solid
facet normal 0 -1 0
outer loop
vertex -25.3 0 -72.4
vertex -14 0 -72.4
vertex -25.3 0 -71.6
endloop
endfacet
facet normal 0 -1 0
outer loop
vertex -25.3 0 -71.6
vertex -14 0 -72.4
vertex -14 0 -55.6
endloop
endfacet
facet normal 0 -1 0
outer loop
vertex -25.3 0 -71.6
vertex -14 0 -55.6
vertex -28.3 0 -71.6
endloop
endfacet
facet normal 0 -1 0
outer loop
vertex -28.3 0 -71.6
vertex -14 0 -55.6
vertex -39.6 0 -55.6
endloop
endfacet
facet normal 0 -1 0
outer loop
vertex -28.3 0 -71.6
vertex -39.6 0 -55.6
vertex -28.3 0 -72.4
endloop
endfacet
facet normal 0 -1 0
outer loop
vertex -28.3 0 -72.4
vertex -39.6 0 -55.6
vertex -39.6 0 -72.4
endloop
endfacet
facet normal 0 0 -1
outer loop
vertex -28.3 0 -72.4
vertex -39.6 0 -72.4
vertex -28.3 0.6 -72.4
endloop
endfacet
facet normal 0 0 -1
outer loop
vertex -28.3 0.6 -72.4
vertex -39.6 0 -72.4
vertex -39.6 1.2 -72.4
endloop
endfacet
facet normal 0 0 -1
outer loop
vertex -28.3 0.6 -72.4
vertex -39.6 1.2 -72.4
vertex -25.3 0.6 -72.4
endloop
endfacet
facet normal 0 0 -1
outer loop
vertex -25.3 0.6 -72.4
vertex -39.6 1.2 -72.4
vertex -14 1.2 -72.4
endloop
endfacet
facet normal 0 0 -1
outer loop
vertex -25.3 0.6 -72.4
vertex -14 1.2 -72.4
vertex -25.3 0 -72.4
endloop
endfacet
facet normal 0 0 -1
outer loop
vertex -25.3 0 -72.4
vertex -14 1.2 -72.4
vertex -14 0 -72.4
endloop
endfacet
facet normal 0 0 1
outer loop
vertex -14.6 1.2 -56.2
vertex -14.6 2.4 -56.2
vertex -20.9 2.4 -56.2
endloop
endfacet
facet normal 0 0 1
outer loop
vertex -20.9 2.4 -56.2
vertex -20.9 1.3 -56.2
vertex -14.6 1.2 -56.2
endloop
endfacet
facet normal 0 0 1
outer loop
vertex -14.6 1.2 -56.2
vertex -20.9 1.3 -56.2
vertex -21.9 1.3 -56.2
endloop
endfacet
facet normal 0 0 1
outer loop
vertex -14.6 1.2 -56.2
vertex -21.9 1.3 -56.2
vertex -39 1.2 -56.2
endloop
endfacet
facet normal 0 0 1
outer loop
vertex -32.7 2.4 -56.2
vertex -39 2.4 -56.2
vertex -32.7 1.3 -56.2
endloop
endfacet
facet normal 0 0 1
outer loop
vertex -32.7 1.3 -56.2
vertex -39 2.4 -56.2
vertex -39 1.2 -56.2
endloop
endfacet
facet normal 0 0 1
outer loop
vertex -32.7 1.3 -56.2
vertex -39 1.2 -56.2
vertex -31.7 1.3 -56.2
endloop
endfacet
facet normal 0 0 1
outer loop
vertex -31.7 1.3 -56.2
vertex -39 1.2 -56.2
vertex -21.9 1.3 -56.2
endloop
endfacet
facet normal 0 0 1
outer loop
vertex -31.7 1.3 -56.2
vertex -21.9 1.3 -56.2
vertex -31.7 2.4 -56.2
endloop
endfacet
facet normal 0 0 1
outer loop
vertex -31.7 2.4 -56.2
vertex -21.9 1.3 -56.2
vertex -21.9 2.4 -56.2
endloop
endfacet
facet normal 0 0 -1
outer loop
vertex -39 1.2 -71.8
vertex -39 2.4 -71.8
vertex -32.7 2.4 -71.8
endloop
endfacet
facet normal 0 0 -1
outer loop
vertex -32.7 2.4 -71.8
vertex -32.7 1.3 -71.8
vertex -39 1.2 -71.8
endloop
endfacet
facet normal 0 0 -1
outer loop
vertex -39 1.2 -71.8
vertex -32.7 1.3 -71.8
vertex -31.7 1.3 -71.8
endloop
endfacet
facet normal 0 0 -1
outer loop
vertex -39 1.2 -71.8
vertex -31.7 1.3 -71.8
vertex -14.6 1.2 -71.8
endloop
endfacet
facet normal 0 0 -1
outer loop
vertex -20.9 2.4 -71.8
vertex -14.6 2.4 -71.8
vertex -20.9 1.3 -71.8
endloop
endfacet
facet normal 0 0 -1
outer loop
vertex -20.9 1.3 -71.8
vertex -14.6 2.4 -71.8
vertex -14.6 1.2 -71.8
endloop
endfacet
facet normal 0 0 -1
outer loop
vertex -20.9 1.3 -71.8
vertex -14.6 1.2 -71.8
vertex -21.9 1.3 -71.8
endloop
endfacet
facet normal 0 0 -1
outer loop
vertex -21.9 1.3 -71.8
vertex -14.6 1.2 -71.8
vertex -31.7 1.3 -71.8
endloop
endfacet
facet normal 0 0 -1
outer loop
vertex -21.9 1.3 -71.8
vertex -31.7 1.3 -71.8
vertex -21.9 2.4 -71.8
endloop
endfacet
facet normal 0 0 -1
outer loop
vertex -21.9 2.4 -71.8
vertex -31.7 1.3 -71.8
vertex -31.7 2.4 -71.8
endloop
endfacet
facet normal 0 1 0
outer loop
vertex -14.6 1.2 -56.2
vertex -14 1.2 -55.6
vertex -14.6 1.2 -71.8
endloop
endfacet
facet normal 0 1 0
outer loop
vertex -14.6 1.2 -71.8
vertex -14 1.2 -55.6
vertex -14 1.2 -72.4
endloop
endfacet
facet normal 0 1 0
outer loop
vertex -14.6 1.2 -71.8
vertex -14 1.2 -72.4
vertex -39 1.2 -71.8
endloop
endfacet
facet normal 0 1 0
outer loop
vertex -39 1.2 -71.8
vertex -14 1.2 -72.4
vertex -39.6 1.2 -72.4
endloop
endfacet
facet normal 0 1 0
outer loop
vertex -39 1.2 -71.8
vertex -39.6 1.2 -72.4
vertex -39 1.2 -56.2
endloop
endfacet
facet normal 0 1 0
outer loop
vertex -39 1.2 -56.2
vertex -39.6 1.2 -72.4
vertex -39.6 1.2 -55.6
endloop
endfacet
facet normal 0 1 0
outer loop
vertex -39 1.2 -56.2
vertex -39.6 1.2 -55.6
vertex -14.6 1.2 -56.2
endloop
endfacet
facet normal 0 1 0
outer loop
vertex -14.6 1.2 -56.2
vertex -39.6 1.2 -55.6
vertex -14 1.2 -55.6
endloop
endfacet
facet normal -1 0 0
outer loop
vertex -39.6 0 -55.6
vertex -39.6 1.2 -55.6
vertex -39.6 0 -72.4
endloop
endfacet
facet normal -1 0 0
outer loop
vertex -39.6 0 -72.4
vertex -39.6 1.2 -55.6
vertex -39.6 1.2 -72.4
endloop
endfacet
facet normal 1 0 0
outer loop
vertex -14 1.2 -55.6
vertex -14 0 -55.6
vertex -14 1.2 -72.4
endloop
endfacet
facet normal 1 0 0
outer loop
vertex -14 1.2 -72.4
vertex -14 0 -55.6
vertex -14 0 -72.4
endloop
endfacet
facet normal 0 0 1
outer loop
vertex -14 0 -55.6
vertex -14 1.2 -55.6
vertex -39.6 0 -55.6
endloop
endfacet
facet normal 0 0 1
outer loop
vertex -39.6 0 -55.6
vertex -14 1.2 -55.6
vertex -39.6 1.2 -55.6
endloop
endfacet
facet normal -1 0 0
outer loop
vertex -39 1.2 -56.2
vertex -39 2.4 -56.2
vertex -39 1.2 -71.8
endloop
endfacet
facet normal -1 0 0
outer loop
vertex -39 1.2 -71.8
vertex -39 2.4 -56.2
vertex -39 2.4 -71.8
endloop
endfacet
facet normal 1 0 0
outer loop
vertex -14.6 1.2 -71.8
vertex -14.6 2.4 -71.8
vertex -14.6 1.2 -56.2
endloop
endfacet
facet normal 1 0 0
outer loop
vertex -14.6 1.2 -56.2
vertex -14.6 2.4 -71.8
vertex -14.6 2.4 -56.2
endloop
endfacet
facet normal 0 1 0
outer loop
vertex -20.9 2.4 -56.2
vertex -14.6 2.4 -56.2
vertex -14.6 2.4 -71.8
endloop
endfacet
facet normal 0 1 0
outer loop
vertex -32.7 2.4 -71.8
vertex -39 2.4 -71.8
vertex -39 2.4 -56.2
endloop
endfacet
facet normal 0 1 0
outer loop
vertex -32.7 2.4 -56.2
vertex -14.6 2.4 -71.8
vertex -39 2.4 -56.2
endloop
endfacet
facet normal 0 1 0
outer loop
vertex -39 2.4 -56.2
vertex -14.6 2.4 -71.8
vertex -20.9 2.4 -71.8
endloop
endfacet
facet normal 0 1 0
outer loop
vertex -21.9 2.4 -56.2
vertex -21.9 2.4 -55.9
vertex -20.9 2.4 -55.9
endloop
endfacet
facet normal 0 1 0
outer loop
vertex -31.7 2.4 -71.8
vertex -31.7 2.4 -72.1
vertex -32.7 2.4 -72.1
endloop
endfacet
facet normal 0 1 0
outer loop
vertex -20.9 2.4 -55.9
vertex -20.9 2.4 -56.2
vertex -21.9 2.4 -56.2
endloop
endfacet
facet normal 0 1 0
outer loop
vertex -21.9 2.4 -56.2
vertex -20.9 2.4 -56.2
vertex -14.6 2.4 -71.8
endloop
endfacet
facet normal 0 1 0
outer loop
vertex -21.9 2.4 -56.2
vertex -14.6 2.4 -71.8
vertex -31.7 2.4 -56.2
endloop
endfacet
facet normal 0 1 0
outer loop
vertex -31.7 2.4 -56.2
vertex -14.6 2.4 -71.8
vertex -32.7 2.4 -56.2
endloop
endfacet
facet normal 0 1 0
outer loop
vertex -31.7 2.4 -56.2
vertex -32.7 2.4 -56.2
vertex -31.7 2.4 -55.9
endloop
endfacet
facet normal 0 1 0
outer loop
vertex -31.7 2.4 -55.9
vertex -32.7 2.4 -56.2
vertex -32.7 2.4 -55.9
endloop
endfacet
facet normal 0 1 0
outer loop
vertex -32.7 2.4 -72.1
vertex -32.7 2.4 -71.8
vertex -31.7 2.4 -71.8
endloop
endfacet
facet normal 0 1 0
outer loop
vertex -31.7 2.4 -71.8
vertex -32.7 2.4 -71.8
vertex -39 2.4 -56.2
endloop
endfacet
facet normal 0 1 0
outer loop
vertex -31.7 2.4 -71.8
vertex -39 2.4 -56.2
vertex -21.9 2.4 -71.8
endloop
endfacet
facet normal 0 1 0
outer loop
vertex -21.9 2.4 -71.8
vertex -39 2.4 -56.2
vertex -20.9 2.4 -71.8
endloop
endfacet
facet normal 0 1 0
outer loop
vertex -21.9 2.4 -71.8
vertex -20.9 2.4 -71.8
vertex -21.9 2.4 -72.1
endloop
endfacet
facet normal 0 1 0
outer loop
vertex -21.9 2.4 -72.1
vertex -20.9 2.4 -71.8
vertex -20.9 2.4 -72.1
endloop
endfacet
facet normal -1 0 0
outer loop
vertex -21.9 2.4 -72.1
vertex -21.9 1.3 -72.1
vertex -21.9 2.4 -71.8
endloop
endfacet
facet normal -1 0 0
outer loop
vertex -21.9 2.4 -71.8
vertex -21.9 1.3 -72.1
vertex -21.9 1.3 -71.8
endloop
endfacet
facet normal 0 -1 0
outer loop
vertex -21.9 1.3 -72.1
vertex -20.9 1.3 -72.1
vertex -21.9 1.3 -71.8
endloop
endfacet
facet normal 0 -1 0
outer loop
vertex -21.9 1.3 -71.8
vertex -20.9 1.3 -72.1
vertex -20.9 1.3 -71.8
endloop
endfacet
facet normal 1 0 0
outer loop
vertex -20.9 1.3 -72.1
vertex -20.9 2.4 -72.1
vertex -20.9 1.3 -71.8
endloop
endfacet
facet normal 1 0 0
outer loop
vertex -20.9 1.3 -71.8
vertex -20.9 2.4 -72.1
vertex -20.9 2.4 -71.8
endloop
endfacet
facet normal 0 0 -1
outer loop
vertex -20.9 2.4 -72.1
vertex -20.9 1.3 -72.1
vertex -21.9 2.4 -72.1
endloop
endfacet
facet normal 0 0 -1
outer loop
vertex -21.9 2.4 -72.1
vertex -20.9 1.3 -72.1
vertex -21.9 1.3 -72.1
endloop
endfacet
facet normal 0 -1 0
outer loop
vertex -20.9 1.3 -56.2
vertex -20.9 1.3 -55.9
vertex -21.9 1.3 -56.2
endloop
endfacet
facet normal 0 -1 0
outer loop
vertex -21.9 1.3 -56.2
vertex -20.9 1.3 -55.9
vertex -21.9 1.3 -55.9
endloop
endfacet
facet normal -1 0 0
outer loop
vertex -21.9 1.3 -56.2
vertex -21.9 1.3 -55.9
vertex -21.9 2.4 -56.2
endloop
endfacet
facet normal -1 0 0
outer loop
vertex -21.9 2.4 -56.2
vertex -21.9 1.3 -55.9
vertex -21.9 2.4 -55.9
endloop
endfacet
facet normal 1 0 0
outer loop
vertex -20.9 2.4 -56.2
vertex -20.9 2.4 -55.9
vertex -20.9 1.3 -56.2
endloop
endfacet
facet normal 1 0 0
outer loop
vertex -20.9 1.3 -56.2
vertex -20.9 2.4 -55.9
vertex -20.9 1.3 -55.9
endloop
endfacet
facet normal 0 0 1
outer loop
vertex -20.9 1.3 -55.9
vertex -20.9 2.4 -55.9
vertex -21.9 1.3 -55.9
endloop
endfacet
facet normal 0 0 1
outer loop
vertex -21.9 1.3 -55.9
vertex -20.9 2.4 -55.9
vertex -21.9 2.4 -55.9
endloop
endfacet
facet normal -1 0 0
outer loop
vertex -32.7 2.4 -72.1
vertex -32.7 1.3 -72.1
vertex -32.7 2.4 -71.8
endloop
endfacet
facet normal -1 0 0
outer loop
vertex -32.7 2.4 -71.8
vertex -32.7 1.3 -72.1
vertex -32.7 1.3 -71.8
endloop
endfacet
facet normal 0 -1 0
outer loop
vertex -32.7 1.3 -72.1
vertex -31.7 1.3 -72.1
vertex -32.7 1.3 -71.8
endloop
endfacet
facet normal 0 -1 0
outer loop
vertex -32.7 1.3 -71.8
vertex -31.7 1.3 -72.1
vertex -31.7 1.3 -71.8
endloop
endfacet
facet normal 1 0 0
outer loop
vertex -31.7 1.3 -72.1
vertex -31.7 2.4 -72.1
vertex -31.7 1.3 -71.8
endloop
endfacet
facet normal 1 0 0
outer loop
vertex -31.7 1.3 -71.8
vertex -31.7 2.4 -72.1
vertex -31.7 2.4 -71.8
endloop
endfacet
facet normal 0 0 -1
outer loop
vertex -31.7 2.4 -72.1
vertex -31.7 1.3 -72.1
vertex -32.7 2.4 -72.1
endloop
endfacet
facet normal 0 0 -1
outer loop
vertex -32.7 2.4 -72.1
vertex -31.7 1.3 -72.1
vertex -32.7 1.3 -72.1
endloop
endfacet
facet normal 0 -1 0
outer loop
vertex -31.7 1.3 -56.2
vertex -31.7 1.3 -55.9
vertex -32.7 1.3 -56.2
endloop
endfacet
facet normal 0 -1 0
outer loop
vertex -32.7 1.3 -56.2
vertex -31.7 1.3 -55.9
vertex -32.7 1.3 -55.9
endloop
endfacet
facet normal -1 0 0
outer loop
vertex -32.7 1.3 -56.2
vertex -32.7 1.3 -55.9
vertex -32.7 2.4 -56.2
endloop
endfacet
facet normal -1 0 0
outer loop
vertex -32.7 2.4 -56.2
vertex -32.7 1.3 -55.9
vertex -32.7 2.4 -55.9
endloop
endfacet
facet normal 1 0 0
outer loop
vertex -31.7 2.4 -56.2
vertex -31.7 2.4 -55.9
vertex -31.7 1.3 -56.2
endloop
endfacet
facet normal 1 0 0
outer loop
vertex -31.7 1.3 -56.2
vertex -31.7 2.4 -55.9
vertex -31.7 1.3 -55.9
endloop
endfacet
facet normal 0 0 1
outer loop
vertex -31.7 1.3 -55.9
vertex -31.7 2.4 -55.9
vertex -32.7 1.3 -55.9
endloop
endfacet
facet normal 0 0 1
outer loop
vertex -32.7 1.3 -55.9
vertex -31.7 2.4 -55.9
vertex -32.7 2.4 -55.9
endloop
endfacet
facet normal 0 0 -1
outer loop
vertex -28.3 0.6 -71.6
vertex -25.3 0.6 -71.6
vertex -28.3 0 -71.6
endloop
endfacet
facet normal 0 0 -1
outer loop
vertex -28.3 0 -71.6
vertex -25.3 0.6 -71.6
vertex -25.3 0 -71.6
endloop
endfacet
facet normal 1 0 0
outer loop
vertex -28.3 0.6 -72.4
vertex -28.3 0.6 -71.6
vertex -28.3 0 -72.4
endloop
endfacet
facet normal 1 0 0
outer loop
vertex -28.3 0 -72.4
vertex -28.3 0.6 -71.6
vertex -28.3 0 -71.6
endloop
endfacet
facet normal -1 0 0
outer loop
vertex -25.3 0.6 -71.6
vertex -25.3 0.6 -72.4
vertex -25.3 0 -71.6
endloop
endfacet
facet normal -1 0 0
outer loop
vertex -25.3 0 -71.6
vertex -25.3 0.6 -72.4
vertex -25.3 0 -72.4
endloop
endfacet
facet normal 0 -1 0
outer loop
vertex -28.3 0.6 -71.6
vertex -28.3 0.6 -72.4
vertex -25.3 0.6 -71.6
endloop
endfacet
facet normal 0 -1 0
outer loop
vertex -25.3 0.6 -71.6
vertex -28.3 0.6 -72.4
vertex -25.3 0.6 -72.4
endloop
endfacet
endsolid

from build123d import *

# Parameters (mm, degrees)
BOSS_EXTRUDE1_START = -72.4
SKETCH1_W           = 25.6
SKETCH1_H           = 1.2
BOSS_EXTRUDE1_DEPTH = 16.8
BOSS_EXTRUDE2_START = -71.8
SKETCH2_W           = 24.4
SKETCH2_H           = 1.21
BOSS_EXTRUDE2_DEPTH = 15.6
BOSS_EXTRUDE3_START = -72.1
SKETCH3_W           = 1
SKETCH3_H           = 1.1
BOSS_EXTRUDE3_DEPTH = 0.31
BOSS_EXTRUDE4_START = -56.21
SKETCH4_W           = 1
SKETCH4_H           = 1.1
BOSS_EXTRUDE4_DEPTH = 0.31
BOSS_EXTRUDE5_START = -72.1
SKETCH5_W           = 1
SKETCH5_H           = 1.1
BOSS_EXTRUDE5_DEPTH = 0.31
BOSS_EXTRUDE6_START = -56.21
SKETCH6_W           = 1
SKETCH6_H           = 1.1
BOSS_EXTRUDE6_DEPTH = 0.31
BOSS_EXTRUDE7_START = -72.5
SKETCH7_W           = 3
SKETCH7_H           = 0.7
BOSS_EXTRUDE7_DEPTH = 0.9


with BuildPart() as part:
    # Sketch1 → Boss-Extrude1 (new body)
    with BuildSketch(Plane.XY.offset(BOSS_EXTRUDE1_START)):
        with Locations((-26.8, 0.6)):
            Rectangle(SKETCH1_W, SKETCH1_H)
    extrude(amount=BOSS_EXTRUDE1_DEPTH)

    # Sketch2 → Boss-Extrude2 (add)
    with BuildSketch(Plane.XY.offset(BOSS_EXTRUDE2_START)):
        with Locations((-26.8, 1.795)):
            Rectangle(SKETCH2_W, SKETCH2_H)
    extrude(amount=BOSS_EXTRUDE2_DEPTH)

    # Sketch3 → Boss-Extrude3 (add)
    with BuildSketch(Plane.XY.offset(BOSS_EXTRUDE3_START)):
        with Locations((-21.4, 1.85)):
            Rectangle(SKETCH3_W, SKETCH3_H)
    extrude(amount=BOSS_EXTRUDE3_DEPTH)

    # Sketch4 → Boss-Extrude4 (add)
    with BuildSketch(Plane.XY.offset(BOSS_EXTRUDE4_START)):
        with Locations((-21.4, 1.85)):
            Rectangle(SKETCH4_W, SKETCH4_H)
    extrude(amount=BOSS_EXTRUDE4_DEPTH)

    # Sketch5 → Boss-Extrude5 (add)
    with BuildSketch(Plane.XY.offset(BOSS_EXTRUDE5_START)):
        with Locations((-32.2, 1.85)):
            Rectangle(SKETCH5_W, SKETCH5_H)
    extrude(amount=BOSS_EXTRUDE5_DEPTH)

    # Sketch6 → Boss-Extrude6 (add)
    with BuildSketch(Plane.XY.offset(BOSS_EXTRUDE6_START)):
        with Locations((-32.2, 1.85)):
            Rectangle(SKETCH6_W, SKETCH6_H)
    extrude(amount=BOSS_EXTRUDE6_DEPTH)


with BuildPart() as body_2:
    # Sketch7 → Boss-Extrude7 (new body)
    with BuildSketch(Plane.XY.offset(BOSS_EXTRUDE7_START)):
        with Locations((-26.8, 0.25)):
            Rectangle(SKETCH7_W, SKETCH7_H)
    extrude(amount=BOSS_EXTRUDE7_DEPTH)


with BuildPart() as part_1:
    add(part.part)

    # Combine1: cut body 2
    add(body_2.part, mode=Mode.SUBTRACT)


solid = part_1.part
